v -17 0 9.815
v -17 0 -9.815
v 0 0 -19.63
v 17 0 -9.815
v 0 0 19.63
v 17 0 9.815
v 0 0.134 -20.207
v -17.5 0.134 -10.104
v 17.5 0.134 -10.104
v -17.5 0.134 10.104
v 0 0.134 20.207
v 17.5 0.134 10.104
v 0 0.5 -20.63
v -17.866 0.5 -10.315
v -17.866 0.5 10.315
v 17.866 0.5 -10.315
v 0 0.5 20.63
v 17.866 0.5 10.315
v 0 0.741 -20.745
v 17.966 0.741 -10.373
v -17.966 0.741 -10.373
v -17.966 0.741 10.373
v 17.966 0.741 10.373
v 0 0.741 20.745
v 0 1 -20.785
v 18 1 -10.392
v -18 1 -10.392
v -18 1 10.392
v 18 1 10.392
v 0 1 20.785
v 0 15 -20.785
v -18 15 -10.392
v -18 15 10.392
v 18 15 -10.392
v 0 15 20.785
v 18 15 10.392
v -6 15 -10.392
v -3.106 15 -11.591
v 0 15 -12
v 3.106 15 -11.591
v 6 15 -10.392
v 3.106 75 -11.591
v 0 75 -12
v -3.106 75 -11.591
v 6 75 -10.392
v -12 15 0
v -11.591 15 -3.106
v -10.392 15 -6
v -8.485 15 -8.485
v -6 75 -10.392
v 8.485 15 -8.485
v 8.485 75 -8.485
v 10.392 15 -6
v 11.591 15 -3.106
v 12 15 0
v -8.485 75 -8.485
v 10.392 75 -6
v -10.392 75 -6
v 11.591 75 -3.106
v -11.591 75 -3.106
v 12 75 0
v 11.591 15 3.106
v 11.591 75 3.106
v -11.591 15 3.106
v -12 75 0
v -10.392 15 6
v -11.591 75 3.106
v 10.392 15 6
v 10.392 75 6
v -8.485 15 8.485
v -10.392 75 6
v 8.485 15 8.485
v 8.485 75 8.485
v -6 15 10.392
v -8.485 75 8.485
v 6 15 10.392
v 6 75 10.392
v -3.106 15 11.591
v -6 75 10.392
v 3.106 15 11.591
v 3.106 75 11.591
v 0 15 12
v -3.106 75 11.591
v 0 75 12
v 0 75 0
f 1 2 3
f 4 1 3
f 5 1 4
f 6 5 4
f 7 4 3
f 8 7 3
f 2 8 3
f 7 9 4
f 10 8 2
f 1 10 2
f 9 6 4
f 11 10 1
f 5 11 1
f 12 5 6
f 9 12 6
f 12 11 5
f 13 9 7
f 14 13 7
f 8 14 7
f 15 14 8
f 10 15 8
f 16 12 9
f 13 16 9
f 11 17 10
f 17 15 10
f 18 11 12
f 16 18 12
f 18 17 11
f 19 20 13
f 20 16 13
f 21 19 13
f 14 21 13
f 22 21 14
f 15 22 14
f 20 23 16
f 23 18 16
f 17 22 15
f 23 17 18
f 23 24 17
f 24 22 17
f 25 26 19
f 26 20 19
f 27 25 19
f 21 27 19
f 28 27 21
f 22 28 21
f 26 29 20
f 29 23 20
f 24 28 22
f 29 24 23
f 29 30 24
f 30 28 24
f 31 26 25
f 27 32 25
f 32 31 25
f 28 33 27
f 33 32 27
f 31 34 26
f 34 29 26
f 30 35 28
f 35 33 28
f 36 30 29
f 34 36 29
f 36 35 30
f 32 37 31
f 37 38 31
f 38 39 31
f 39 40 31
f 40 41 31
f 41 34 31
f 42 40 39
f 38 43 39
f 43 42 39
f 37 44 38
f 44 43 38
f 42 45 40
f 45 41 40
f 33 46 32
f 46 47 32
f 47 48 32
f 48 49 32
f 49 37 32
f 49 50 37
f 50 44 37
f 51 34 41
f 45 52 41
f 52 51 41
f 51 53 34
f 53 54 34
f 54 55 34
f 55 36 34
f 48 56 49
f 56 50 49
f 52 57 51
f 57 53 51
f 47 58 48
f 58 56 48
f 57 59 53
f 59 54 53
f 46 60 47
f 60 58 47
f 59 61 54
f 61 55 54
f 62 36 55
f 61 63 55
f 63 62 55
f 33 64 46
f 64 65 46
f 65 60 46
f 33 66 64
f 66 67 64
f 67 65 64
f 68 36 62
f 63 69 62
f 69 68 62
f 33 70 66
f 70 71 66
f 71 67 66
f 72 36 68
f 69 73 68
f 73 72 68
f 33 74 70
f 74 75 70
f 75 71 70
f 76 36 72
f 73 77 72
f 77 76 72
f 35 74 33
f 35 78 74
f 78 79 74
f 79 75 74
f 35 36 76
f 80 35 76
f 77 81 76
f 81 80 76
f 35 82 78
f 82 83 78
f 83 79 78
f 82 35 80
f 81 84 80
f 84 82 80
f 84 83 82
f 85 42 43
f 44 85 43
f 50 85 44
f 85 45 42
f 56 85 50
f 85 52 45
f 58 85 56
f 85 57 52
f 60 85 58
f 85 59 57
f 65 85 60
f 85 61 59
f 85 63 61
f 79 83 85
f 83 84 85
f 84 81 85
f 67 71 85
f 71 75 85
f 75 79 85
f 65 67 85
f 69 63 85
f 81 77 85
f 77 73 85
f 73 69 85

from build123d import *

# Parameters (mm, degrees)
EXTRUDE_1_DEPTH = 15
SKETCH_2_R      = 12
EXTRUDE_2_DEPTH = 60
FILLET_1_R      = 1


with BuildPart() as part:
    # 草圖1 → 填料-伸長1 (new body)
    with BuildSketch(Plane(origin=(0, 0, 0), x_dir=(1, 0, 0), z_dir=(0, 1, 0))):
        Polygon((18, -10.392304845), (18, 10.392304845), (0, 20.784609691), (-18, 10.392304845), (-18, -10.392304845), (0, -20.784609691), align=None)
    extrude(amount=EXTRUDE_1_DEPTH)

    # 草圖2 → 填料-伸長2 (add)
    with BuildSketch(Plane(origin=(0, 15, 0), x_dir=(1, 0, 0), z_dir=(0, 1, 0))):
        Circle(SKETCH_2_R)
    extrude(amount=EXTRUDE_2_DEPTH)

    # 圓角1
    fillet_1_edges = [part.edges().sort_by_distance(p)[0] for p in [
        (18, 0, 0),
        (9, 0, 15.588457268),
        (-9, 0, 15.588457268),
        (-18, 0, 0),
        (-9, 0, -15.588457268),
        (9, 0, -15.588457268),
    ]]
    fillet(fillet_1_edges, radius=FILLET_1_R)


solid = part.part
